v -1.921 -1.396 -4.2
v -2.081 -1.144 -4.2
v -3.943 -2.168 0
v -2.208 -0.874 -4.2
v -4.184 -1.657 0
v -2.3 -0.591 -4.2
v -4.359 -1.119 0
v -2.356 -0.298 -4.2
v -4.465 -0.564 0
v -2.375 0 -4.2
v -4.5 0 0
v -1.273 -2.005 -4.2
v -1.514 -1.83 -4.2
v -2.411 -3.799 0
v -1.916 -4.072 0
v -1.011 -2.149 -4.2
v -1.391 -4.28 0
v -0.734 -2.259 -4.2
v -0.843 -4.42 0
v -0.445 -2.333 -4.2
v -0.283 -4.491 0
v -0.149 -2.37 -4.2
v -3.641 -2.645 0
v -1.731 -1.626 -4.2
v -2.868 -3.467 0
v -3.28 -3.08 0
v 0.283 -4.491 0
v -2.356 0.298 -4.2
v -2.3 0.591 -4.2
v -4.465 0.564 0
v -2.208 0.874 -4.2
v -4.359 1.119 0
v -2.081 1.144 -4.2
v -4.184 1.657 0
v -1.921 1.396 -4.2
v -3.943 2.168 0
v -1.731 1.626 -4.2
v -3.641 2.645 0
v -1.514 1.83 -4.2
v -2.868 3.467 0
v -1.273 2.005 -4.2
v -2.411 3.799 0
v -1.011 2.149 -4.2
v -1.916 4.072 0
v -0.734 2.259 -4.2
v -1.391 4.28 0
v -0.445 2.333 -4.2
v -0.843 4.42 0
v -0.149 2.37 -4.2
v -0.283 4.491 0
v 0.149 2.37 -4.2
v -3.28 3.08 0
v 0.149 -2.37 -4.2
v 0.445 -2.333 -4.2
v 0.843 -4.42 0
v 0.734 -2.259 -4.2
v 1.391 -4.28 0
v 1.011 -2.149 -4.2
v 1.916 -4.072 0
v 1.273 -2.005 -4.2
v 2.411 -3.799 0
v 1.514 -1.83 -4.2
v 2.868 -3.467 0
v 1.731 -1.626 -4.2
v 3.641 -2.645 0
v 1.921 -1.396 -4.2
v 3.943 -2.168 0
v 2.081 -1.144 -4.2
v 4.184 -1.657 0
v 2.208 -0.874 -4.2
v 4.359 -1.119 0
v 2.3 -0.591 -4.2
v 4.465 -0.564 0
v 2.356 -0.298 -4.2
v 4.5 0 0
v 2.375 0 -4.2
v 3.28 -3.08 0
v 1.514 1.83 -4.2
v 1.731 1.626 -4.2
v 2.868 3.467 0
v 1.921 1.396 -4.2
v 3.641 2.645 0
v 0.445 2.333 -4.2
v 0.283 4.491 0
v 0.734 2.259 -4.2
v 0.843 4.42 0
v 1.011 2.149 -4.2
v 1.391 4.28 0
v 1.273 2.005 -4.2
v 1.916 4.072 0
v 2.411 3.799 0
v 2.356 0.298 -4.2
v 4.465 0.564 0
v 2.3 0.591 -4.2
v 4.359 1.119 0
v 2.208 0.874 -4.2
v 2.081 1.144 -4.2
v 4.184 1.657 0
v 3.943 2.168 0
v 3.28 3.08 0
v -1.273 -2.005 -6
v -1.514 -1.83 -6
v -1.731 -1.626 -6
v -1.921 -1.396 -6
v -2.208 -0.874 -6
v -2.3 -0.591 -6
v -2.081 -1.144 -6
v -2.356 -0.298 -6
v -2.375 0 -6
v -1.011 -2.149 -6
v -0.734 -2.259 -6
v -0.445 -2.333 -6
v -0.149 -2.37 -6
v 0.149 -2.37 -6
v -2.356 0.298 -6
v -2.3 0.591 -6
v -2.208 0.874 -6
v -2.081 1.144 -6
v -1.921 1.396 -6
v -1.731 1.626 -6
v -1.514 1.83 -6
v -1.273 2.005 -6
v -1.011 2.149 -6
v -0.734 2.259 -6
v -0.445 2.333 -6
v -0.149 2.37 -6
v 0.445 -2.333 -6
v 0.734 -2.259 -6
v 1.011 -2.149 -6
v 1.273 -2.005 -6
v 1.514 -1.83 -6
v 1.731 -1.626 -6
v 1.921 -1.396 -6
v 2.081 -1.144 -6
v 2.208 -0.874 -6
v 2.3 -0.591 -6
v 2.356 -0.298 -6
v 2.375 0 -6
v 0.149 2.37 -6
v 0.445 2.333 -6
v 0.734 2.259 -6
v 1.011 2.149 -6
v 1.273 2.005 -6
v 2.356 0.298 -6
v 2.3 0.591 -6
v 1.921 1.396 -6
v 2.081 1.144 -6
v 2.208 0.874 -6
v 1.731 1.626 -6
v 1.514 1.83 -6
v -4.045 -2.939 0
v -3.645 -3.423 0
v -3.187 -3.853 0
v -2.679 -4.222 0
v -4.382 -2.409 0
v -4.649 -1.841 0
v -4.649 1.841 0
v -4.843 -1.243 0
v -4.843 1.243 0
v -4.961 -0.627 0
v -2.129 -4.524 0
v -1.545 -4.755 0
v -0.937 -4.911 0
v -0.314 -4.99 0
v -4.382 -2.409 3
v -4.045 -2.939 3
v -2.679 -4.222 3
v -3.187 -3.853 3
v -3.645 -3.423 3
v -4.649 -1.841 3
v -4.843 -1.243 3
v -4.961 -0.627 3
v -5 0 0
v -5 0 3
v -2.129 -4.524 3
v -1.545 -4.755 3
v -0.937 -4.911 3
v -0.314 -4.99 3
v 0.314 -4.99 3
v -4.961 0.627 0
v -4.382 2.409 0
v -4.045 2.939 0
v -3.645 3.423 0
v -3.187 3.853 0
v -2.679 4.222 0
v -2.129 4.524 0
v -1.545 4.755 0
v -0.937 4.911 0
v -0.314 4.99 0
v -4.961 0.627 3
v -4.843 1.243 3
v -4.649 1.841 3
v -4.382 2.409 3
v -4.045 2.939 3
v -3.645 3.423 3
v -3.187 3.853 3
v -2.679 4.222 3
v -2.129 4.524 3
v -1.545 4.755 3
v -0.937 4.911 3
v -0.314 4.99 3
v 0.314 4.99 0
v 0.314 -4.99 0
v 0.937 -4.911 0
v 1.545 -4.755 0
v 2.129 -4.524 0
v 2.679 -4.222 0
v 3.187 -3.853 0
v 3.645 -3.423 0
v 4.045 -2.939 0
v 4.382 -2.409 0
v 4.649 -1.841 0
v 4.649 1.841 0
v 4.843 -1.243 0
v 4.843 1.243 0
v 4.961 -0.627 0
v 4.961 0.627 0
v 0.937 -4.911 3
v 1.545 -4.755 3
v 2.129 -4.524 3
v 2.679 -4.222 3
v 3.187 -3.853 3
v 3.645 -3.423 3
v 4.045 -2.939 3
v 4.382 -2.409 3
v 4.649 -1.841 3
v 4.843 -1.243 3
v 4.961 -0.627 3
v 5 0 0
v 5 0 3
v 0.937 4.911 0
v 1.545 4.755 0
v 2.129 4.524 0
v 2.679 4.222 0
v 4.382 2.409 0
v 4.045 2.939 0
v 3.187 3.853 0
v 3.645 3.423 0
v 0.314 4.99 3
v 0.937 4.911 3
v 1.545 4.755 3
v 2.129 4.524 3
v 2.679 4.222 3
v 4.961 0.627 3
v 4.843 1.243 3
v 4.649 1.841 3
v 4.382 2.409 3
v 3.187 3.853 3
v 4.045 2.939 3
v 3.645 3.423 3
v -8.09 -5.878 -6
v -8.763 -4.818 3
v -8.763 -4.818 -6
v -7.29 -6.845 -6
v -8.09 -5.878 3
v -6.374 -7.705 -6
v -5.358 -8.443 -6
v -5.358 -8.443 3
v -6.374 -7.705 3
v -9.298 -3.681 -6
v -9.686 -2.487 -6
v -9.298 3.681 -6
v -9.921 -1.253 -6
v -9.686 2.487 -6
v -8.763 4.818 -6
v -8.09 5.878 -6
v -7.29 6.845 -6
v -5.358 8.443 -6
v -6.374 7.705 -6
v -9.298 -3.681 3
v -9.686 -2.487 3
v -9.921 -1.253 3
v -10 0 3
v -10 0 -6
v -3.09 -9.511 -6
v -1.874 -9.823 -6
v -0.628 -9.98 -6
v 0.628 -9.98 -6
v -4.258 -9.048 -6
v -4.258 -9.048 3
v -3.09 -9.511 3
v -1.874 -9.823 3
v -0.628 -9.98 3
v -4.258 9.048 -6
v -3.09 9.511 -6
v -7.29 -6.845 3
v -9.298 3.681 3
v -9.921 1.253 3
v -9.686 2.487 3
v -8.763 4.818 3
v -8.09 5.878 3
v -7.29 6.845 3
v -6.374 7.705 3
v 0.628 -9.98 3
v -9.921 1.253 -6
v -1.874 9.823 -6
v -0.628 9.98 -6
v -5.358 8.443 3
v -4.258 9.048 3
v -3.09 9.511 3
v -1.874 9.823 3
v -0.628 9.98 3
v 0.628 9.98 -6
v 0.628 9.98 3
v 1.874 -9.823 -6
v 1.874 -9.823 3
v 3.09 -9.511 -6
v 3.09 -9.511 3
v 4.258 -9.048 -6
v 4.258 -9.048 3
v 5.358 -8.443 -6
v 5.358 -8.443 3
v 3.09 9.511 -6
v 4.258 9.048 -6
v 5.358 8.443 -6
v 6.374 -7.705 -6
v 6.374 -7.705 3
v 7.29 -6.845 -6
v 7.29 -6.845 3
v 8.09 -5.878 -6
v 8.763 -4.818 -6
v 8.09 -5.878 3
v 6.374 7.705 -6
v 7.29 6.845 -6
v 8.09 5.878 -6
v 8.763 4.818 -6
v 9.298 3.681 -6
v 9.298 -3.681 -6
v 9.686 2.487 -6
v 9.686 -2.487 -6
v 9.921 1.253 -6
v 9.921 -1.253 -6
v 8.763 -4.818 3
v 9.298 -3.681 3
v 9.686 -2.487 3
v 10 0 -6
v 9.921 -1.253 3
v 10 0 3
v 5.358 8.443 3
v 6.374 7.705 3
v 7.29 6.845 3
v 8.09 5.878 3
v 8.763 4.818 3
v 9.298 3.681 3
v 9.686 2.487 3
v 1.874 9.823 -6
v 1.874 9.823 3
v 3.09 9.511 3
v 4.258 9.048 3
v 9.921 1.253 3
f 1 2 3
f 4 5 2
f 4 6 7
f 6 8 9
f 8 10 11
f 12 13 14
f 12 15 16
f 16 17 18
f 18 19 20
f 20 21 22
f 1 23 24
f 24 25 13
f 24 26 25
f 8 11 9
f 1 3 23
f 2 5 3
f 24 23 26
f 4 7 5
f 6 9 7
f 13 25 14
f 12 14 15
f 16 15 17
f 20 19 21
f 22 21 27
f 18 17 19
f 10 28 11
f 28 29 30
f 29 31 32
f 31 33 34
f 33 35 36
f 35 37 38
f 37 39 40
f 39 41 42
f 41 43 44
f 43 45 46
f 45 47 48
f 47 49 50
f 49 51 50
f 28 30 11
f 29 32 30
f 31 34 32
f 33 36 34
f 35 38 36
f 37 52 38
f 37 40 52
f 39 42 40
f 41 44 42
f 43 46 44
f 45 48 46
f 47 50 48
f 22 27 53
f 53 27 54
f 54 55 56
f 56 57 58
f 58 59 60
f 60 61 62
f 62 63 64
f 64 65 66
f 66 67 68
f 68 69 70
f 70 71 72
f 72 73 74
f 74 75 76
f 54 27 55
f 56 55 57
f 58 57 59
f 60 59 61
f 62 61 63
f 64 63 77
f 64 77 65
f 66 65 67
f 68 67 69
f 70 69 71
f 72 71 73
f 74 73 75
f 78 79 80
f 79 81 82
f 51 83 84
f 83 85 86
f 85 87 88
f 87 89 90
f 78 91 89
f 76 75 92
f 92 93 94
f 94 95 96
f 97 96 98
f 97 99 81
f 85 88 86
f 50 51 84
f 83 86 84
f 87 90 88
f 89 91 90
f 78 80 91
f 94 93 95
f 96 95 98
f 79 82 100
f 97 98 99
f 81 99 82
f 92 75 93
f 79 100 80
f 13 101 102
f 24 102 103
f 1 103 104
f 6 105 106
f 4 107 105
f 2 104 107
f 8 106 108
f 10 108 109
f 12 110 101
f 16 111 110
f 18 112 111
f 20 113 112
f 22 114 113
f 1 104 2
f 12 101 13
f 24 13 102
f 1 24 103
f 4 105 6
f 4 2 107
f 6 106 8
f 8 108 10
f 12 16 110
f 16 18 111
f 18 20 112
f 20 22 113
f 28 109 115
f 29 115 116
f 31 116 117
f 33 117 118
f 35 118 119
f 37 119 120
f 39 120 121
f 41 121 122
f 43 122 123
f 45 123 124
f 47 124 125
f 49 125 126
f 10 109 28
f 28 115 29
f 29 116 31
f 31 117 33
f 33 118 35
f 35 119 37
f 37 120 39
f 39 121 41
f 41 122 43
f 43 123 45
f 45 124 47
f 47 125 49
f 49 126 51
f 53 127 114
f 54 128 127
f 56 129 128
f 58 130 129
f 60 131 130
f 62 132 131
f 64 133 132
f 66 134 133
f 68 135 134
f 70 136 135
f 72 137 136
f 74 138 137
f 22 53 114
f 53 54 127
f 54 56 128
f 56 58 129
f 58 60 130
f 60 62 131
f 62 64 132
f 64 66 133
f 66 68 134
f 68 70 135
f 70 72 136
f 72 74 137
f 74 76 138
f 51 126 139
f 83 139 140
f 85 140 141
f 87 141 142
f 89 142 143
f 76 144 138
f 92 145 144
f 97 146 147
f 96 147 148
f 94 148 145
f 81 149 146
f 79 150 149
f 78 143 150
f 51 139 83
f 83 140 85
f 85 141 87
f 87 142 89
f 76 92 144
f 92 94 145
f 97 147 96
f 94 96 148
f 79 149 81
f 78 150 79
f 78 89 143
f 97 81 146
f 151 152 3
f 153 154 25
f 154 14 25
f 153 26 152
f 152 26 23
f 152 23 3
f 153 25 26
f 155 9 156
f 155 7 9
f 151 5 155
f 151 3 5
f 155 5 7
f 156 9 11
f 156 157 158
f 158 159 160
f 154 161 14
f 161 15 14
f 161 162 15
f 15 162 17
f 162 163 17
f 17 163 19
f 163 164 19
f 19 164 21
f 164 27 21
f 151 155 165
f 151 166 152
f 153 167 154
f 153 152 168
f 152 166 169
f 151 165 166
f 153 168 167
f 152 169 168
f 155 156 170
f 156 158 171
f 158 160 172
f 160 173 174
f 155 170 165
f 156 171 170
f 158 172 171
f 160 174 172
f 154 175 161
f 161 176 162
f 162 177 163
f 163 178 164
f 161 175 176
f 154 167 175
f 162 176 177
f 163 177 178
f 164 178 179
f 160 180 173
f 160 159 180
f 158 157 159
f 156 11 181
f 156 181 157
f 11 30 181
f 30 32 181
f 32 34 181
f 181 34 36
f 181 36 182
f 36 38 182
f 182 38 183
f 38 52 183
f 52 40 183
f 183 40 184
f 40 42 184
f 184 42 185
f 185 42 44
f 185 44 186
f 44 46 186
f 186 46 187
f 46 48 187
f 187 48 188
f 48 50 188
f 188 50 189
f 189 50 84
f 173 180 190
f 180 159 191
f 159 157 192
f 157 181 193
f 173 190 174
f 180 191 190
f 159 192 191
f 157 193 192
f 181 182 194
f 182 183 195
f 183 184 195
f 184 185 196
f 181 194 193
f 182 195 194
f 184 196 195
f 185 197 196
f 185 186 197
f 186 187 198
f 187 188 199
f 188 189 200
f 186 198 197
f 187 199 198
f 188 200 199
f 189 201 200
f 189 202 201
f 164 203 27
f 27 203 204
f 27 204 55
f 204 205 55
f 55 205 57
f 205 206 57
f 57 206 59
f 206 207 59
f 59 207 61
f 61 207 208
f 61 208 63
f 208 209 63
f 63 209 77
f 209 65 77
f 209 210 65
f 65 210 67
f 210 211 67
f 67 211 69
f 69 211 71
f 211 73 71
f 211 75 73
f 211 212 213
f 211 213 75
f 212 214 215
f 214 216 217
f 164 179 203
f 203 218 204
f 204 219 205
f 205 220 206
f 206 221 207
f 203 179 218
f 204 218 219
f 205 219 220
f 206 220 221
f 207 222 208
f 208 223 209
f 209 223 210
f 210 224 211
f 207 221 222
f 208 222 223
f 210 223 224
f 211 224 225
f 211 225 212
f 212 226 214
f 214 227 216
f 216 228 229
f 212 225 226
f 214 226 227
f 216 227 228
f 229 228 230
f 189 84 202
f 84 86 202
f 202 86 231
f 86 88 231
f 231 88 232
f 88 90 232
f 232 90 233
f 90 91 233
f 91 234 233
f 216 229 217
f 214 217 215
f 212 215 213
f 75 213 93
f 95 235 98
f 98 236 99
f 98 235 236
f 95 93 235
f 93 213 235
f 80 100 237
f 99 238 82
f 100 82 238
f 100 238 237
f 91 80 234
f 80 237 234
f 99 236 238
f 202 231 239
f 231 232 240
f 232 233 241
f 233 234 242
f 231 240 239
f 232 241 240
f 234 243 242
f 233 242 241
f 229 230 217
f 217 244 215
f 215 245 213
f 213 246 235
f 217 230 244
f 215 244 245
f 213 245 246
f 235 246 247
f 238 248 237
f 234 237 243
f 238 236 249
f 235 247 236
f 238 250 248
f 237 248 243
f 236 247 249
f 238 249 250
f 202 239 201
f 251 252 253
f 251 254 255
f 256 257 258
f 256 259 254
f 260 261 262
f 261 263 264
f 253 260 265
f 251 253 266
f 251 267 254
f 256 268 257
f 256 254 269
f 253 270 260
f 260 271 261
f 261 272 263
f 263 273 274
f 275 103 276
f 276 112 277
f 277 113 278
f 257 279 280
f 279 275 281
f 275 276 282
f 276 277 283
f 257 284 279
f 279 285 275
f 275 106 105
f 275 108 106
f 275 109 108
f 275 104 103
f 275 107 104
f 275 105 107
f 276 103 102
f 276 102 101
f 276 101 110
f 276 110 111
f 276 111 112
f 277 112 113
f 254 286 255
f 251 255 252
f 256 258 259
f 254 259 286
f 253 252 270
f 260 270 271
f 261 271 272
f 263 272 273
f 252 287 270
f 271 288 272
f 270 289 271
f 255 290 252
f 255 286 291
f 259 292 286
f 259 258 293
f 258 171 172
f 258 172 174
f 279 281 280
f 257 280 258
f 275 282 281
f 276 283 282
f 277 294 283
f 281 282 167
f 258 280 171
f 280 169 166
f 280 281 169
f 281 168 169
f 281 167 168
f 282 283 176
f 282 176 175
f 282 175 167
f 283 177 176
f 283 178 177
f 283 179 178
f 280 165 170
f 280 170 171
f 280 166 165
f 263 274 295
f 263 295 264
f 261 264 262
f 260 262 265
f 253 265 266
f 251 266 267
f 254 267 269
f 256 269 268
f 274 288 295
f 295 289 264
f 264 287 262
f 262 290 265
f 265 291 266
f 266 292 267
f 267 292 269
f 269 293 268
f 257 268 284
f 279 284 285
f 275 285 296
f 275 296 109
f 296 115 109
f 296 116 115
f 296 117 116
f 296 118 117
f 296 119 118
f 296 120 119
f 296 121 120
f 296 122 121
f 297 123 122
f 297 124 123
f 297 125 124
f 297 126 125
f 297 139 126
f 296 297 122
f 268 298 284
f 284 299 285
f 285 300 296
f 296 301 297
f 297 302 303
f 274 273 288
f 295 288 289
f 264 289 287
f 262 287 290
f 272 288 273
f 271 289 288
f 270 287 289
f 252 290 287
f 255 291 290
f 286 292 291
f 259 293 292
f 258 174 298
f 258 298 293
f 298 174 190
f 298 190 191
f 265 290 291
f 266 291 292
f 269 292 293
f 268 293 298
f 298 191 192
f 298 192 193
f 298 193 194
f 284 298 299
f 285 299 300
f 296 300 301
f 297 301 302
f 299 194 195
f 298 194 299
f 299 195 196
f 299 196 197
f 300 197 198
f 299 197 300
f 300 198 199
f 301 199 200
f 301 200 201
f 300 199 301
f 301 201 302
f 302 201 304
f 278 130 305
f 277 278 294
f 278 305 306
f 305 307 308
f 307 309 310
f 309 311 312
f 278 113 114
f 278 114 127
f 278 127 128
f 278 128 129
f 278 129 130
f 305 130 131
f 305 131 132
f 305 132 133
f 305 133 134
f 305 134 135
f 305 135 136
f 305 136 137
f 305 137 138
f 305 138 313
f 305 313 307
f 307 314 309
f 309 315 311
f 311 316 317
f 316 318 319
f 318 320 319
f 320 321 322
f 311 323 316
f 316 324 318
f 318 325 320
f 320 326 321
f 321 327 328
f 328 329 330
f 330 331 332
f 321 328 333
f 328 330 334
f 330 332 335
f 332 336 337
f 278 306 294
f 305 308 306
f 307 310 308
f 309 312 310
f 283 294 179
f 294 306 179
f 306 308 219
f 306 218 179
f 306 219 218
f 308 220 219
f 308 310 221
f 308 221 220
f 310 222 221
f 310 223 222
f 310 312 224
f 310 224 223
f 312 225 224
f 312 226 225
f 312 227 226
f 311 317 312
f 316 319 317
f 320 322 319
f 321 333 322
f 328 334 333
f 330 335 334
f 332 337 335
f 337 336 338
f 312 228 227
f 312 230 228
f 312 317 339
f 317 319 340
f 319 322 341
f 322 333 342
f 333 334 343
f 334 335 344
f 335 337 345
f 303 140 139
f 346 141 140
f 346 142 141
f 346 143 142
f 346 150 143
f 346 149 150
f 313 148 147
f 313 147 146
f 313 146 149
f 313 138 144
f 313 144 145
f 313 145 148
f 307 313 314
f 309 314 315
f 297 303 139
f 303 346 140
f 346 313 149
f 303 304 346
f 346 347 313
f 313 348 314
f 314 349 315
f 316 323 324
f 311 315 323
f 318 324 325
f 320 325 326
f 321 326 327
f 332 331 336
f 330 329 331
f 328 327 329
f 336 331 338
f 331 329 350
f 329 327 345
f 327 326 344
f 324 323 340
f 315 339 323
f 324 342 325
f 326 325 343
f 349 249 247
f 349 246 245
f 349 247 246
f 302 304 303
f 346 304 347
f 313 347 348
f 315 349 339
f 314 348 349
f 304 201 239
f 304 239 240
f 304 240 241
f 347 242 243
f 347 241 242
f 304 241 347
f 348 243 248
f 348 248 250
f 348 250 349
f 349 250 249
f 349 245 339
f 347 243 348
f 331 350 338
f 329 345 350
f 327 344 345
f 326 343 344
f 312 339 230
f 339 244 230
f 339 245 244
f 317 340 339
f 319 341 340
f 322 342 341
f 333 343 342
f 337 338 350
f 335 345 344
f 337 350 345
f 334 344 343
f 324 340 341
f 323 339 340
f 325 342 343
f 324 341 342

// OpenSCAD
$fn = 50;

difference() {
	union() {
		translate(v = [0, 0, -6.0]) {
			cylinder(h = 9, r = 10.0);
		}
	}
	union() {
		translate(v = [0, 0, 0]) {
			rotate(a = [0, 0, 0]) {
				difference() {
					union() {
						translate(v = [0, 0, -9.0]) {
							cylinder(h = 9, r = 2.25);
						}
						translate(v = [0, 0, -4.2]) {
							cylinder(h = 4.2, r1 = 2.375, r2 = 4.5);
						}
						translate(v = [0, 0, -9.0]) {
							cylinder(h = 9, r = 2.375);
						}
						translate(v = [0, 0, -9.0]) {
							cylinder(h = 9, r = 2.25);
						}
					}
					union();
				}
			}
		}
		#cylinder(h = 3, r = 5.0);
	}
}
